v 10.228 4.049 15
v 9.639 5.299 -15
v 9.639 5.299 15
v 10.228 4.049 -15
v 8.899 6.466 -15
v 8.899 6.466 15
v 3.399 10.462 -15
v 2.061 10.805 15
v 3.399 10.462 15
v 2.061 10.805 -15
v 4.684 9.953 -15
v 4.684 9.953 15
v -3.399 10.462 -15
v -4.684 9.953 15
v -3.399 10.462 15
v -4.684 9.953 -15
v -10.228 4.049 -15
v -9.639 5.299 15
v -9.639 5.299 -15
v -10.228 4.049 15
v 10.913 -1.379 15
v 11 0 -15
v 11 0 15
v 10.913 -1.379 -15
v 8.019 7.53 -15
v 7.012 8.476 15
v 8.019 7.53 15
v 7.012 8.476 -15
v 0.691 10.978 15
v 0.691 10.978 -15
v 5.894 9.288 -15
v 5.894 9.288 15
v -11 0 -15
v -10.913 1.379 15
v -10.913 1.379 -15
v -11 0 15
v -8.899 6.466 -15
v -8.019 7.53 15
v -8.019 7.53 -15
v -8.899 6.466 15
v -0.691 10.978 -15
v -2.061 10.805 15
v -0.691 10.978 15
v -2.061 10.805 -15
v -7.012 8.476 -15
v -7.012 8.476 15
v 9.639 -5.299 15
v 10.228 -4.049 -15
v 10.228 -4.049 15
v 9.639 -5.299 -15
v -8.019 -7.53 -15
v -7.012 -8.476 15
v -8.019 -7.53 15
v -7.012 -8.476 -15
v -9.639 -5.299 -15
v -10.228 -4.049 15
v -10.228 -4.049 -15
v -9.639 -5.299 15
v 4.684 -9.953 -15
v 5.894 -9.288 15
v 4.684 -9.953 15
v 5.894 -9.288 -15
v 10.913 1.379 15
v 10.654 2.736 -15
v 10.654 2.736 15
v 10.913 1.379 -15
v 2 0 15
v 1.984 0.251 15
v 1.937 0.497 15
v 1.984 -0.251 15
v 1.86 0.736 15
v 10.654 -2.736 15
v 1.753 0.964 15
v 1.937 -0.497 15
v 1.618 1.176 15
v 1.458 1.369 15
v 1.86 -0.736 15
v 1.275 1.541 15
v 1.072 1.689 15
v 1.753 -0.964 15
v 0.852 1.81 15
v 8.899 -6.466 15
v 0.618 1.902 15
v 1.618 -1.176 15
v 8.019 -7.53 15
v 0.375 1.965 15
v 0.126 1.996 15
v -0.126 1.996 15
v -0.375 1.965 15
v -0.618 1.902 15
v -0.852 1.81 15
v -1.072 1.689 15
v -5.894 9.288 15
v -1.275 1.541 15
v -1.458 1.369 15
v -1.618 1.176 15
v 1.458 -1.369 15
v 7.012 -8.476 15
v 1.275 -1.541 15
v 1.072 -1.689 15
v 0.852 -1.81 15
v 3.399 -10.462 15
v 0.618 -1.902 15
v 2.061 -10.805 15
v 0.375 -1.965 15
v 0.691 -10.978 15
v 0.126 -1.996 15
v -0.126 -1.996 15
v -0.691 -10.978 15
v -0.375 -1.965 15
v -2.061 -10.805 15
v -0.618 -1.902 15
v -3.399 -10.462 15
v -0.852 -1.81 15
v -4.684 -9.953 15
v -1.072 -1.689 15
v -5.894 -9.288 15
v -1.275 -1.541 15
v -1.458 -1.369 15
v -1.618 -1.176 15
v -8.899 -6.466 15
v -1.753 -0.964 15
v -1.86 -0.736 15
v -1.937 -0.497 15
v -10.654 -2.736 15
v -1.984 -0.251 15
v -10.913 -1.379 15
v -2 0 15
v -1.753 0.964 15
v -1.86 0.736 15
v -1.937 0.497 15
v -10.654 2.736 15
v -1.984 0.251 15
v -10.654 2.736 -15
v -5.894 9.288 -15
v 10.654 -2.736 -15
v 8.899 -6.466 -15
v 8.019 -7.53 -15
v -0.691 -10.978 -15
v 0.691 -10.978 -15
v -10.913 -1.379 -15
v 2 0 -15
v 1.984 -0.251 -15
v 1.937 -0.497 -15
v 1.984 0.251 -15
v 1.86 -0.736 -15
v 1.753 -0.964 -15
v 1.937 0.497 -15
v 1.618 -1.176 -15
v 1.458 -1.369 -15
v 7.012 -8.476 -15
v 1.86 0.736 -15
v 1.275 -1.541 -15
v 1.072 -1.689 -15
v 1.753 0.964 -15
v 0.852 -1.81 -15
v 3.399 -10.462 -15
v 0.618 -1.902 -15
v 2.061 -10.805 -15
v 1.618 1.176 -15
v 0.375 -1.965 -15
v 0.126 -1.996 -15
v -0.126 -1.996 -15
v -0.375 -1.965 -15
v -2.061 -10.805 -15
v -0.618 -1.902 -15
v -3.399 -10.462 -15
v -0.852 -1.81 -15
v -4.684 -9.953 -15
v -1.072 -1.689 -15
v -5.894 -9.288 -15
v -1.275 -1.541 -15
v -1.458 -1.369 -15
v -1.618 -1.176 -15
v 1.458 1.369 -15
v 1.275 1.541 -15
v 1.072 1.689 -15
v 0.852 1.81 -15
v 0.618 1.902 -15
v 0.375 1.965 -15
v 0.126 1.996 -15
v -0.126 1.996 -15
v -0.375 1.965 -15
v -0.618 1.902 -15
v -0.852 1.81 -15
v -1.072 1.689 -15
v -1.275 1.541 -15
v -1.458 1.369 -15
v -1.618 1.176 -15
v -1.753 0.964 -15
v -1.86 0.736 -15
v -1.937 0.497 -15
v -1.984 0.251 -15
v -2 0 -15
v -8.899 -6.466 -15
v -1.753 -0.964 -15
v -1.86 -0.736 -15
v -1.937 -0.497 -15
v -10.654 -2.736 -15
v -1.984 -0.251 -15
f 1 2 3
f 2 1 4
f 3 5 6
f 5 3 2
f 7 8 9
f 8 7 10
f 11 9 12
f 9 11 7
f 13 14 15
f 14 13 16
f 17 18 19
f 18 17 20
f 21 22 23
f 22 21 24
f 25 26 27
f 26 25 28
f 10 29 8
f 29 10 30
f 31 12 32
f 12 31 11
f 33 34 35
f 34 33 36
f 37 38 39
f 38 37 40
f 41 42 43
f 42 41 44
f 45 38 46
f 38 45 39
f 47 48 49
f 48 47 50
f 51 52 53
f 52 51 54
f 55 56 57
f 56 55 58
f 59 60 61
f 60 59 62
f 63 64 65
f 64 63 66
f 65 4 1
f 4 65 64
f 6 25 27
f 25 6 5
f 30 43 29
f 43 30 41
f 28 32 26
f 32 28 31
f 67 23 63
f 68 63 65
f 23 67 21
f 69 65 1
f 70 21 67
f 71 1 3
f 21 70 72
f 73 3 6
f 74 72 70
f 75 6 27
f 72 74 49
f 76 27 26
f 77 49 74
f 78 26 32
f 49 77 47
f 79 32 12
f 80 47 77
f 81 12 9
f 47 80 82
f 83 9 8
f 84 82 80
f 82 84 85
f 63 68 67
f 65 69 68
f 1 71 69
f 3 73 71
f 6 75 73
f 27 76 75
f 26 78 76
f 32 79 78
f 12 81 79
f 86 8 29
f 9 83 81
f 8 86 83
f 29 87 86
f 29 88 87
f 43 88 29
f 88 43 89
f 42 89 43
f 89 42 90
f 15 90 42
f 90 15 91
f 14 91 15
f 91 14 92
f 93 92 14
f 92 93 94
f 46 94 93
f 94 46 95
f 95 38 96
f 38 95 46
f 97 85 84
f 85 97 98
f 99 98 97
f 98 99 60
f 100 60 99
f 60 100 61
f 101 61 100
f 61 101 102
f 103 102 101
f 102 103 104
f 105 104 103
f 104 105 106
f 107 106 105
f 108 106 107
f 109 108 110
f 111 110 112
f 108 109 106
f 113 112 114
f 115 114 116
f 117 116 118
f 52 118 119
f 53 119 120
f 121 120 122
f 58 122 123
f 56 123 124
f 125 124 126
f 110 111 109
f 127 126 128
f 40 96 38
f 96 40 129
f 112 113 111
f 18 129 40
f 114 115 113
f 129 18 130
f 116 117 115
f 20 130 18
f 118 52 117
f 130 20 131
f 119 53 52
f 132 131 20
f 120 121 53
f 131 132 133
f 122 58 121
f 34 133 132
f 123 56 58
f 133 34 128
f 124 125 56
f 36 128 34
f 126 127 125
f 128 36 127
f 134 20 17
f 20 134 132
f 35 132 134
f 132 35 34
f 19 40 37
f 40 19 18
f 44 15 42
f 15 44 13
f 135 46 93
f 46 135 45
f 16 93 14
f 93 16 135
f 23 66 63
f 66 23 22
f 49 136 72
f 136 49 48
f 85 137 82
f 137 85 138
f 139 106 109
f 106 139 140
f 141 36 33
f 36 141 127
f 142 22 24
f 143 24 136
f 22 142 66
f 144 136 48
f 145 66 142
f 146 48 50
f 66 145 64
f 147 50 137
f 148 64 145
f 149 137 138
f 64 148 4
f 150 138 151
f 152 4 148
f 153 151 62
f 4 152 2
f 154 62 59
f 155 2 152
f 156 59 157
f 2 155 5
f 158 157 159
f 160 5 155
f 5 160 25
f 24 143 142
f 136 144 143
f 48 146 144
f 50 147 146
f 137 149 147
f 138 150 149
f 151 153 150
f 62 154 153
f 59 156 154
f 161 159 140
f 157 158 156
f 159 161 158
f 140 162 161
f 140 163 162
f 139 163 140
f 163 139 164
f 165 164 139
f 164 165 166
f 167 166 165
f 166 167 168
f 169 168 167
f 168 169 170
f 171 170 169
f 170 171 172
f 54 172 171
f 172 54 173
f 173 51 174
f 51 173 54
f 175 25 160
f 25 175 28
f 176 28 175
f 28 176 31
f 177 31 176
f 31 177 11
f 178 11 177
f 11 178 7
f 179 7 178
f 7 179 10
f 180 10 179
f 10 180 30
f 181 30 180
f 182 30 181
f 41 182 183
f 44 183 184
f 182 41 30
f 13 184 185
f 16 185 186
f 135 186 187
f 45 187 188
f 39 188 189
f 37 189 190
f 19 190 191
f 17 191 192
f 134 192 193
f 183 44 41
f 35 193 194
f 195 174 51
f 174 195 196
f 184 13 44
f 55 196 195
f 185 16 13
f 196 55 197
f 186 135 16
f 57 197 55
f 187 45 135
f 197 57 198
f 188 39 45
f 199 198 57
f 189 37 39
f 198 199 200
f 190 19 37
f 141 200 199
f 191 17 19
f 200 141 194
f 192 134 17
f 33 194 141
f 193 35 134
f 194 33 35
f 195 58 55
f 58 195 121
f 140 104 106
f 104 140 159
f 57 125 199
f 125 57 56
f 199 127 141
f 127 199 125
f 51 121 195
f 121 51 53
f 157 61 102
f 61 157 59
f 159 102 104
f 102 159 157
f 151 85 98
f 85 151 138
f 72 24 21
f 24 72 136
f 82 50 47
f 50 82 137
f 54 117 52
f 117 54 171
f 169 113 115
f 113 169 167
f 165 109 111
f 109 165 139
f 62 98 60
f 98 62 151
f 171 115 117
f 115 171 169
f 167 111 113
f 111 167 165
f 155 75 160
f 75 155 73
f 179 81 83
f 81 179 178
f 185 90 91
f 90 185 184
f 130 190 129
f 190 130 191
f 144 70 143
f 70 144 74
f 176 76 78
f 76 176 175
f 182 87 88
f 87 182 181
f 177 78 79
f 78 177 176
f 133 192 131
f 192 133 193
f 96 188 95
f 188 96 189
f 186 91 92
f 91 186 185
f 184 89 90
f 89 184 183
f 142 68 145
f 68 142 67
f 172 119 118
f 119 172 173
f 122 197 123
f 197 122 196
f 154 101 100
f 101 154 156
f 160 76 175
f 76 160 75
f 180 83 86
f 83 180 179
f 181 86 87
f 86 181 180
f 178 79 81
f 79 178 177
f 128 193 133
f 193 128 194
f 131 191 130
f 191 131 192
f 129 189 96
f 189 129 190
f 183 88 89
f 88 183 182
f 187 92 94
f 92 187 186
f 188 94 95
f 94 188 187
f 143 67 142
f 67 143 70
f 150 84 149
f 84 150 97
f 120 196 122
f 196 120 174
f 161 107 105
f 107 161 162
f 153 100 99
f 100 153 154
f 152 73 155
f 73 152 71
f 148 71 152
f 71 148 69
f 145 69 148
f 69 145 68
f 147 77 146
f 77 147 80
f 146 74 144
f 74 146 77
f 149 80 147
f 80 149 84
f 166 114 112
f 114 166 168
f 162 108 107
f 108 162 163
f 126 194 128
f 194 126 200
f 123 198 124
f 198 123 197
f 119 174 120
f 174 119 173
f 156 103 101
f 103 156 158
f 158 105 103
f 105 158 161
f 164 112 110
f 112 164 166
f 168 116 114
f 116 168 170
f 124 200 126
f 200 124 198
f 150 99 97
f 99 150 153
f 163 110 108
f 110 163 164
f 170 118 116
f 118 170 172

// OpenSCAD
$fn = 50;


difference() {
	union() {
		translate(v = [0, 0, -15.0000000000]) {
			cylinder(h = 30, r = 11.0000000000);
		}
	}
	union() {
		translate(v = [0, 0, -100.0000000000]) {
			cylinder(h = 200, r = 2);
		}
	}
}
